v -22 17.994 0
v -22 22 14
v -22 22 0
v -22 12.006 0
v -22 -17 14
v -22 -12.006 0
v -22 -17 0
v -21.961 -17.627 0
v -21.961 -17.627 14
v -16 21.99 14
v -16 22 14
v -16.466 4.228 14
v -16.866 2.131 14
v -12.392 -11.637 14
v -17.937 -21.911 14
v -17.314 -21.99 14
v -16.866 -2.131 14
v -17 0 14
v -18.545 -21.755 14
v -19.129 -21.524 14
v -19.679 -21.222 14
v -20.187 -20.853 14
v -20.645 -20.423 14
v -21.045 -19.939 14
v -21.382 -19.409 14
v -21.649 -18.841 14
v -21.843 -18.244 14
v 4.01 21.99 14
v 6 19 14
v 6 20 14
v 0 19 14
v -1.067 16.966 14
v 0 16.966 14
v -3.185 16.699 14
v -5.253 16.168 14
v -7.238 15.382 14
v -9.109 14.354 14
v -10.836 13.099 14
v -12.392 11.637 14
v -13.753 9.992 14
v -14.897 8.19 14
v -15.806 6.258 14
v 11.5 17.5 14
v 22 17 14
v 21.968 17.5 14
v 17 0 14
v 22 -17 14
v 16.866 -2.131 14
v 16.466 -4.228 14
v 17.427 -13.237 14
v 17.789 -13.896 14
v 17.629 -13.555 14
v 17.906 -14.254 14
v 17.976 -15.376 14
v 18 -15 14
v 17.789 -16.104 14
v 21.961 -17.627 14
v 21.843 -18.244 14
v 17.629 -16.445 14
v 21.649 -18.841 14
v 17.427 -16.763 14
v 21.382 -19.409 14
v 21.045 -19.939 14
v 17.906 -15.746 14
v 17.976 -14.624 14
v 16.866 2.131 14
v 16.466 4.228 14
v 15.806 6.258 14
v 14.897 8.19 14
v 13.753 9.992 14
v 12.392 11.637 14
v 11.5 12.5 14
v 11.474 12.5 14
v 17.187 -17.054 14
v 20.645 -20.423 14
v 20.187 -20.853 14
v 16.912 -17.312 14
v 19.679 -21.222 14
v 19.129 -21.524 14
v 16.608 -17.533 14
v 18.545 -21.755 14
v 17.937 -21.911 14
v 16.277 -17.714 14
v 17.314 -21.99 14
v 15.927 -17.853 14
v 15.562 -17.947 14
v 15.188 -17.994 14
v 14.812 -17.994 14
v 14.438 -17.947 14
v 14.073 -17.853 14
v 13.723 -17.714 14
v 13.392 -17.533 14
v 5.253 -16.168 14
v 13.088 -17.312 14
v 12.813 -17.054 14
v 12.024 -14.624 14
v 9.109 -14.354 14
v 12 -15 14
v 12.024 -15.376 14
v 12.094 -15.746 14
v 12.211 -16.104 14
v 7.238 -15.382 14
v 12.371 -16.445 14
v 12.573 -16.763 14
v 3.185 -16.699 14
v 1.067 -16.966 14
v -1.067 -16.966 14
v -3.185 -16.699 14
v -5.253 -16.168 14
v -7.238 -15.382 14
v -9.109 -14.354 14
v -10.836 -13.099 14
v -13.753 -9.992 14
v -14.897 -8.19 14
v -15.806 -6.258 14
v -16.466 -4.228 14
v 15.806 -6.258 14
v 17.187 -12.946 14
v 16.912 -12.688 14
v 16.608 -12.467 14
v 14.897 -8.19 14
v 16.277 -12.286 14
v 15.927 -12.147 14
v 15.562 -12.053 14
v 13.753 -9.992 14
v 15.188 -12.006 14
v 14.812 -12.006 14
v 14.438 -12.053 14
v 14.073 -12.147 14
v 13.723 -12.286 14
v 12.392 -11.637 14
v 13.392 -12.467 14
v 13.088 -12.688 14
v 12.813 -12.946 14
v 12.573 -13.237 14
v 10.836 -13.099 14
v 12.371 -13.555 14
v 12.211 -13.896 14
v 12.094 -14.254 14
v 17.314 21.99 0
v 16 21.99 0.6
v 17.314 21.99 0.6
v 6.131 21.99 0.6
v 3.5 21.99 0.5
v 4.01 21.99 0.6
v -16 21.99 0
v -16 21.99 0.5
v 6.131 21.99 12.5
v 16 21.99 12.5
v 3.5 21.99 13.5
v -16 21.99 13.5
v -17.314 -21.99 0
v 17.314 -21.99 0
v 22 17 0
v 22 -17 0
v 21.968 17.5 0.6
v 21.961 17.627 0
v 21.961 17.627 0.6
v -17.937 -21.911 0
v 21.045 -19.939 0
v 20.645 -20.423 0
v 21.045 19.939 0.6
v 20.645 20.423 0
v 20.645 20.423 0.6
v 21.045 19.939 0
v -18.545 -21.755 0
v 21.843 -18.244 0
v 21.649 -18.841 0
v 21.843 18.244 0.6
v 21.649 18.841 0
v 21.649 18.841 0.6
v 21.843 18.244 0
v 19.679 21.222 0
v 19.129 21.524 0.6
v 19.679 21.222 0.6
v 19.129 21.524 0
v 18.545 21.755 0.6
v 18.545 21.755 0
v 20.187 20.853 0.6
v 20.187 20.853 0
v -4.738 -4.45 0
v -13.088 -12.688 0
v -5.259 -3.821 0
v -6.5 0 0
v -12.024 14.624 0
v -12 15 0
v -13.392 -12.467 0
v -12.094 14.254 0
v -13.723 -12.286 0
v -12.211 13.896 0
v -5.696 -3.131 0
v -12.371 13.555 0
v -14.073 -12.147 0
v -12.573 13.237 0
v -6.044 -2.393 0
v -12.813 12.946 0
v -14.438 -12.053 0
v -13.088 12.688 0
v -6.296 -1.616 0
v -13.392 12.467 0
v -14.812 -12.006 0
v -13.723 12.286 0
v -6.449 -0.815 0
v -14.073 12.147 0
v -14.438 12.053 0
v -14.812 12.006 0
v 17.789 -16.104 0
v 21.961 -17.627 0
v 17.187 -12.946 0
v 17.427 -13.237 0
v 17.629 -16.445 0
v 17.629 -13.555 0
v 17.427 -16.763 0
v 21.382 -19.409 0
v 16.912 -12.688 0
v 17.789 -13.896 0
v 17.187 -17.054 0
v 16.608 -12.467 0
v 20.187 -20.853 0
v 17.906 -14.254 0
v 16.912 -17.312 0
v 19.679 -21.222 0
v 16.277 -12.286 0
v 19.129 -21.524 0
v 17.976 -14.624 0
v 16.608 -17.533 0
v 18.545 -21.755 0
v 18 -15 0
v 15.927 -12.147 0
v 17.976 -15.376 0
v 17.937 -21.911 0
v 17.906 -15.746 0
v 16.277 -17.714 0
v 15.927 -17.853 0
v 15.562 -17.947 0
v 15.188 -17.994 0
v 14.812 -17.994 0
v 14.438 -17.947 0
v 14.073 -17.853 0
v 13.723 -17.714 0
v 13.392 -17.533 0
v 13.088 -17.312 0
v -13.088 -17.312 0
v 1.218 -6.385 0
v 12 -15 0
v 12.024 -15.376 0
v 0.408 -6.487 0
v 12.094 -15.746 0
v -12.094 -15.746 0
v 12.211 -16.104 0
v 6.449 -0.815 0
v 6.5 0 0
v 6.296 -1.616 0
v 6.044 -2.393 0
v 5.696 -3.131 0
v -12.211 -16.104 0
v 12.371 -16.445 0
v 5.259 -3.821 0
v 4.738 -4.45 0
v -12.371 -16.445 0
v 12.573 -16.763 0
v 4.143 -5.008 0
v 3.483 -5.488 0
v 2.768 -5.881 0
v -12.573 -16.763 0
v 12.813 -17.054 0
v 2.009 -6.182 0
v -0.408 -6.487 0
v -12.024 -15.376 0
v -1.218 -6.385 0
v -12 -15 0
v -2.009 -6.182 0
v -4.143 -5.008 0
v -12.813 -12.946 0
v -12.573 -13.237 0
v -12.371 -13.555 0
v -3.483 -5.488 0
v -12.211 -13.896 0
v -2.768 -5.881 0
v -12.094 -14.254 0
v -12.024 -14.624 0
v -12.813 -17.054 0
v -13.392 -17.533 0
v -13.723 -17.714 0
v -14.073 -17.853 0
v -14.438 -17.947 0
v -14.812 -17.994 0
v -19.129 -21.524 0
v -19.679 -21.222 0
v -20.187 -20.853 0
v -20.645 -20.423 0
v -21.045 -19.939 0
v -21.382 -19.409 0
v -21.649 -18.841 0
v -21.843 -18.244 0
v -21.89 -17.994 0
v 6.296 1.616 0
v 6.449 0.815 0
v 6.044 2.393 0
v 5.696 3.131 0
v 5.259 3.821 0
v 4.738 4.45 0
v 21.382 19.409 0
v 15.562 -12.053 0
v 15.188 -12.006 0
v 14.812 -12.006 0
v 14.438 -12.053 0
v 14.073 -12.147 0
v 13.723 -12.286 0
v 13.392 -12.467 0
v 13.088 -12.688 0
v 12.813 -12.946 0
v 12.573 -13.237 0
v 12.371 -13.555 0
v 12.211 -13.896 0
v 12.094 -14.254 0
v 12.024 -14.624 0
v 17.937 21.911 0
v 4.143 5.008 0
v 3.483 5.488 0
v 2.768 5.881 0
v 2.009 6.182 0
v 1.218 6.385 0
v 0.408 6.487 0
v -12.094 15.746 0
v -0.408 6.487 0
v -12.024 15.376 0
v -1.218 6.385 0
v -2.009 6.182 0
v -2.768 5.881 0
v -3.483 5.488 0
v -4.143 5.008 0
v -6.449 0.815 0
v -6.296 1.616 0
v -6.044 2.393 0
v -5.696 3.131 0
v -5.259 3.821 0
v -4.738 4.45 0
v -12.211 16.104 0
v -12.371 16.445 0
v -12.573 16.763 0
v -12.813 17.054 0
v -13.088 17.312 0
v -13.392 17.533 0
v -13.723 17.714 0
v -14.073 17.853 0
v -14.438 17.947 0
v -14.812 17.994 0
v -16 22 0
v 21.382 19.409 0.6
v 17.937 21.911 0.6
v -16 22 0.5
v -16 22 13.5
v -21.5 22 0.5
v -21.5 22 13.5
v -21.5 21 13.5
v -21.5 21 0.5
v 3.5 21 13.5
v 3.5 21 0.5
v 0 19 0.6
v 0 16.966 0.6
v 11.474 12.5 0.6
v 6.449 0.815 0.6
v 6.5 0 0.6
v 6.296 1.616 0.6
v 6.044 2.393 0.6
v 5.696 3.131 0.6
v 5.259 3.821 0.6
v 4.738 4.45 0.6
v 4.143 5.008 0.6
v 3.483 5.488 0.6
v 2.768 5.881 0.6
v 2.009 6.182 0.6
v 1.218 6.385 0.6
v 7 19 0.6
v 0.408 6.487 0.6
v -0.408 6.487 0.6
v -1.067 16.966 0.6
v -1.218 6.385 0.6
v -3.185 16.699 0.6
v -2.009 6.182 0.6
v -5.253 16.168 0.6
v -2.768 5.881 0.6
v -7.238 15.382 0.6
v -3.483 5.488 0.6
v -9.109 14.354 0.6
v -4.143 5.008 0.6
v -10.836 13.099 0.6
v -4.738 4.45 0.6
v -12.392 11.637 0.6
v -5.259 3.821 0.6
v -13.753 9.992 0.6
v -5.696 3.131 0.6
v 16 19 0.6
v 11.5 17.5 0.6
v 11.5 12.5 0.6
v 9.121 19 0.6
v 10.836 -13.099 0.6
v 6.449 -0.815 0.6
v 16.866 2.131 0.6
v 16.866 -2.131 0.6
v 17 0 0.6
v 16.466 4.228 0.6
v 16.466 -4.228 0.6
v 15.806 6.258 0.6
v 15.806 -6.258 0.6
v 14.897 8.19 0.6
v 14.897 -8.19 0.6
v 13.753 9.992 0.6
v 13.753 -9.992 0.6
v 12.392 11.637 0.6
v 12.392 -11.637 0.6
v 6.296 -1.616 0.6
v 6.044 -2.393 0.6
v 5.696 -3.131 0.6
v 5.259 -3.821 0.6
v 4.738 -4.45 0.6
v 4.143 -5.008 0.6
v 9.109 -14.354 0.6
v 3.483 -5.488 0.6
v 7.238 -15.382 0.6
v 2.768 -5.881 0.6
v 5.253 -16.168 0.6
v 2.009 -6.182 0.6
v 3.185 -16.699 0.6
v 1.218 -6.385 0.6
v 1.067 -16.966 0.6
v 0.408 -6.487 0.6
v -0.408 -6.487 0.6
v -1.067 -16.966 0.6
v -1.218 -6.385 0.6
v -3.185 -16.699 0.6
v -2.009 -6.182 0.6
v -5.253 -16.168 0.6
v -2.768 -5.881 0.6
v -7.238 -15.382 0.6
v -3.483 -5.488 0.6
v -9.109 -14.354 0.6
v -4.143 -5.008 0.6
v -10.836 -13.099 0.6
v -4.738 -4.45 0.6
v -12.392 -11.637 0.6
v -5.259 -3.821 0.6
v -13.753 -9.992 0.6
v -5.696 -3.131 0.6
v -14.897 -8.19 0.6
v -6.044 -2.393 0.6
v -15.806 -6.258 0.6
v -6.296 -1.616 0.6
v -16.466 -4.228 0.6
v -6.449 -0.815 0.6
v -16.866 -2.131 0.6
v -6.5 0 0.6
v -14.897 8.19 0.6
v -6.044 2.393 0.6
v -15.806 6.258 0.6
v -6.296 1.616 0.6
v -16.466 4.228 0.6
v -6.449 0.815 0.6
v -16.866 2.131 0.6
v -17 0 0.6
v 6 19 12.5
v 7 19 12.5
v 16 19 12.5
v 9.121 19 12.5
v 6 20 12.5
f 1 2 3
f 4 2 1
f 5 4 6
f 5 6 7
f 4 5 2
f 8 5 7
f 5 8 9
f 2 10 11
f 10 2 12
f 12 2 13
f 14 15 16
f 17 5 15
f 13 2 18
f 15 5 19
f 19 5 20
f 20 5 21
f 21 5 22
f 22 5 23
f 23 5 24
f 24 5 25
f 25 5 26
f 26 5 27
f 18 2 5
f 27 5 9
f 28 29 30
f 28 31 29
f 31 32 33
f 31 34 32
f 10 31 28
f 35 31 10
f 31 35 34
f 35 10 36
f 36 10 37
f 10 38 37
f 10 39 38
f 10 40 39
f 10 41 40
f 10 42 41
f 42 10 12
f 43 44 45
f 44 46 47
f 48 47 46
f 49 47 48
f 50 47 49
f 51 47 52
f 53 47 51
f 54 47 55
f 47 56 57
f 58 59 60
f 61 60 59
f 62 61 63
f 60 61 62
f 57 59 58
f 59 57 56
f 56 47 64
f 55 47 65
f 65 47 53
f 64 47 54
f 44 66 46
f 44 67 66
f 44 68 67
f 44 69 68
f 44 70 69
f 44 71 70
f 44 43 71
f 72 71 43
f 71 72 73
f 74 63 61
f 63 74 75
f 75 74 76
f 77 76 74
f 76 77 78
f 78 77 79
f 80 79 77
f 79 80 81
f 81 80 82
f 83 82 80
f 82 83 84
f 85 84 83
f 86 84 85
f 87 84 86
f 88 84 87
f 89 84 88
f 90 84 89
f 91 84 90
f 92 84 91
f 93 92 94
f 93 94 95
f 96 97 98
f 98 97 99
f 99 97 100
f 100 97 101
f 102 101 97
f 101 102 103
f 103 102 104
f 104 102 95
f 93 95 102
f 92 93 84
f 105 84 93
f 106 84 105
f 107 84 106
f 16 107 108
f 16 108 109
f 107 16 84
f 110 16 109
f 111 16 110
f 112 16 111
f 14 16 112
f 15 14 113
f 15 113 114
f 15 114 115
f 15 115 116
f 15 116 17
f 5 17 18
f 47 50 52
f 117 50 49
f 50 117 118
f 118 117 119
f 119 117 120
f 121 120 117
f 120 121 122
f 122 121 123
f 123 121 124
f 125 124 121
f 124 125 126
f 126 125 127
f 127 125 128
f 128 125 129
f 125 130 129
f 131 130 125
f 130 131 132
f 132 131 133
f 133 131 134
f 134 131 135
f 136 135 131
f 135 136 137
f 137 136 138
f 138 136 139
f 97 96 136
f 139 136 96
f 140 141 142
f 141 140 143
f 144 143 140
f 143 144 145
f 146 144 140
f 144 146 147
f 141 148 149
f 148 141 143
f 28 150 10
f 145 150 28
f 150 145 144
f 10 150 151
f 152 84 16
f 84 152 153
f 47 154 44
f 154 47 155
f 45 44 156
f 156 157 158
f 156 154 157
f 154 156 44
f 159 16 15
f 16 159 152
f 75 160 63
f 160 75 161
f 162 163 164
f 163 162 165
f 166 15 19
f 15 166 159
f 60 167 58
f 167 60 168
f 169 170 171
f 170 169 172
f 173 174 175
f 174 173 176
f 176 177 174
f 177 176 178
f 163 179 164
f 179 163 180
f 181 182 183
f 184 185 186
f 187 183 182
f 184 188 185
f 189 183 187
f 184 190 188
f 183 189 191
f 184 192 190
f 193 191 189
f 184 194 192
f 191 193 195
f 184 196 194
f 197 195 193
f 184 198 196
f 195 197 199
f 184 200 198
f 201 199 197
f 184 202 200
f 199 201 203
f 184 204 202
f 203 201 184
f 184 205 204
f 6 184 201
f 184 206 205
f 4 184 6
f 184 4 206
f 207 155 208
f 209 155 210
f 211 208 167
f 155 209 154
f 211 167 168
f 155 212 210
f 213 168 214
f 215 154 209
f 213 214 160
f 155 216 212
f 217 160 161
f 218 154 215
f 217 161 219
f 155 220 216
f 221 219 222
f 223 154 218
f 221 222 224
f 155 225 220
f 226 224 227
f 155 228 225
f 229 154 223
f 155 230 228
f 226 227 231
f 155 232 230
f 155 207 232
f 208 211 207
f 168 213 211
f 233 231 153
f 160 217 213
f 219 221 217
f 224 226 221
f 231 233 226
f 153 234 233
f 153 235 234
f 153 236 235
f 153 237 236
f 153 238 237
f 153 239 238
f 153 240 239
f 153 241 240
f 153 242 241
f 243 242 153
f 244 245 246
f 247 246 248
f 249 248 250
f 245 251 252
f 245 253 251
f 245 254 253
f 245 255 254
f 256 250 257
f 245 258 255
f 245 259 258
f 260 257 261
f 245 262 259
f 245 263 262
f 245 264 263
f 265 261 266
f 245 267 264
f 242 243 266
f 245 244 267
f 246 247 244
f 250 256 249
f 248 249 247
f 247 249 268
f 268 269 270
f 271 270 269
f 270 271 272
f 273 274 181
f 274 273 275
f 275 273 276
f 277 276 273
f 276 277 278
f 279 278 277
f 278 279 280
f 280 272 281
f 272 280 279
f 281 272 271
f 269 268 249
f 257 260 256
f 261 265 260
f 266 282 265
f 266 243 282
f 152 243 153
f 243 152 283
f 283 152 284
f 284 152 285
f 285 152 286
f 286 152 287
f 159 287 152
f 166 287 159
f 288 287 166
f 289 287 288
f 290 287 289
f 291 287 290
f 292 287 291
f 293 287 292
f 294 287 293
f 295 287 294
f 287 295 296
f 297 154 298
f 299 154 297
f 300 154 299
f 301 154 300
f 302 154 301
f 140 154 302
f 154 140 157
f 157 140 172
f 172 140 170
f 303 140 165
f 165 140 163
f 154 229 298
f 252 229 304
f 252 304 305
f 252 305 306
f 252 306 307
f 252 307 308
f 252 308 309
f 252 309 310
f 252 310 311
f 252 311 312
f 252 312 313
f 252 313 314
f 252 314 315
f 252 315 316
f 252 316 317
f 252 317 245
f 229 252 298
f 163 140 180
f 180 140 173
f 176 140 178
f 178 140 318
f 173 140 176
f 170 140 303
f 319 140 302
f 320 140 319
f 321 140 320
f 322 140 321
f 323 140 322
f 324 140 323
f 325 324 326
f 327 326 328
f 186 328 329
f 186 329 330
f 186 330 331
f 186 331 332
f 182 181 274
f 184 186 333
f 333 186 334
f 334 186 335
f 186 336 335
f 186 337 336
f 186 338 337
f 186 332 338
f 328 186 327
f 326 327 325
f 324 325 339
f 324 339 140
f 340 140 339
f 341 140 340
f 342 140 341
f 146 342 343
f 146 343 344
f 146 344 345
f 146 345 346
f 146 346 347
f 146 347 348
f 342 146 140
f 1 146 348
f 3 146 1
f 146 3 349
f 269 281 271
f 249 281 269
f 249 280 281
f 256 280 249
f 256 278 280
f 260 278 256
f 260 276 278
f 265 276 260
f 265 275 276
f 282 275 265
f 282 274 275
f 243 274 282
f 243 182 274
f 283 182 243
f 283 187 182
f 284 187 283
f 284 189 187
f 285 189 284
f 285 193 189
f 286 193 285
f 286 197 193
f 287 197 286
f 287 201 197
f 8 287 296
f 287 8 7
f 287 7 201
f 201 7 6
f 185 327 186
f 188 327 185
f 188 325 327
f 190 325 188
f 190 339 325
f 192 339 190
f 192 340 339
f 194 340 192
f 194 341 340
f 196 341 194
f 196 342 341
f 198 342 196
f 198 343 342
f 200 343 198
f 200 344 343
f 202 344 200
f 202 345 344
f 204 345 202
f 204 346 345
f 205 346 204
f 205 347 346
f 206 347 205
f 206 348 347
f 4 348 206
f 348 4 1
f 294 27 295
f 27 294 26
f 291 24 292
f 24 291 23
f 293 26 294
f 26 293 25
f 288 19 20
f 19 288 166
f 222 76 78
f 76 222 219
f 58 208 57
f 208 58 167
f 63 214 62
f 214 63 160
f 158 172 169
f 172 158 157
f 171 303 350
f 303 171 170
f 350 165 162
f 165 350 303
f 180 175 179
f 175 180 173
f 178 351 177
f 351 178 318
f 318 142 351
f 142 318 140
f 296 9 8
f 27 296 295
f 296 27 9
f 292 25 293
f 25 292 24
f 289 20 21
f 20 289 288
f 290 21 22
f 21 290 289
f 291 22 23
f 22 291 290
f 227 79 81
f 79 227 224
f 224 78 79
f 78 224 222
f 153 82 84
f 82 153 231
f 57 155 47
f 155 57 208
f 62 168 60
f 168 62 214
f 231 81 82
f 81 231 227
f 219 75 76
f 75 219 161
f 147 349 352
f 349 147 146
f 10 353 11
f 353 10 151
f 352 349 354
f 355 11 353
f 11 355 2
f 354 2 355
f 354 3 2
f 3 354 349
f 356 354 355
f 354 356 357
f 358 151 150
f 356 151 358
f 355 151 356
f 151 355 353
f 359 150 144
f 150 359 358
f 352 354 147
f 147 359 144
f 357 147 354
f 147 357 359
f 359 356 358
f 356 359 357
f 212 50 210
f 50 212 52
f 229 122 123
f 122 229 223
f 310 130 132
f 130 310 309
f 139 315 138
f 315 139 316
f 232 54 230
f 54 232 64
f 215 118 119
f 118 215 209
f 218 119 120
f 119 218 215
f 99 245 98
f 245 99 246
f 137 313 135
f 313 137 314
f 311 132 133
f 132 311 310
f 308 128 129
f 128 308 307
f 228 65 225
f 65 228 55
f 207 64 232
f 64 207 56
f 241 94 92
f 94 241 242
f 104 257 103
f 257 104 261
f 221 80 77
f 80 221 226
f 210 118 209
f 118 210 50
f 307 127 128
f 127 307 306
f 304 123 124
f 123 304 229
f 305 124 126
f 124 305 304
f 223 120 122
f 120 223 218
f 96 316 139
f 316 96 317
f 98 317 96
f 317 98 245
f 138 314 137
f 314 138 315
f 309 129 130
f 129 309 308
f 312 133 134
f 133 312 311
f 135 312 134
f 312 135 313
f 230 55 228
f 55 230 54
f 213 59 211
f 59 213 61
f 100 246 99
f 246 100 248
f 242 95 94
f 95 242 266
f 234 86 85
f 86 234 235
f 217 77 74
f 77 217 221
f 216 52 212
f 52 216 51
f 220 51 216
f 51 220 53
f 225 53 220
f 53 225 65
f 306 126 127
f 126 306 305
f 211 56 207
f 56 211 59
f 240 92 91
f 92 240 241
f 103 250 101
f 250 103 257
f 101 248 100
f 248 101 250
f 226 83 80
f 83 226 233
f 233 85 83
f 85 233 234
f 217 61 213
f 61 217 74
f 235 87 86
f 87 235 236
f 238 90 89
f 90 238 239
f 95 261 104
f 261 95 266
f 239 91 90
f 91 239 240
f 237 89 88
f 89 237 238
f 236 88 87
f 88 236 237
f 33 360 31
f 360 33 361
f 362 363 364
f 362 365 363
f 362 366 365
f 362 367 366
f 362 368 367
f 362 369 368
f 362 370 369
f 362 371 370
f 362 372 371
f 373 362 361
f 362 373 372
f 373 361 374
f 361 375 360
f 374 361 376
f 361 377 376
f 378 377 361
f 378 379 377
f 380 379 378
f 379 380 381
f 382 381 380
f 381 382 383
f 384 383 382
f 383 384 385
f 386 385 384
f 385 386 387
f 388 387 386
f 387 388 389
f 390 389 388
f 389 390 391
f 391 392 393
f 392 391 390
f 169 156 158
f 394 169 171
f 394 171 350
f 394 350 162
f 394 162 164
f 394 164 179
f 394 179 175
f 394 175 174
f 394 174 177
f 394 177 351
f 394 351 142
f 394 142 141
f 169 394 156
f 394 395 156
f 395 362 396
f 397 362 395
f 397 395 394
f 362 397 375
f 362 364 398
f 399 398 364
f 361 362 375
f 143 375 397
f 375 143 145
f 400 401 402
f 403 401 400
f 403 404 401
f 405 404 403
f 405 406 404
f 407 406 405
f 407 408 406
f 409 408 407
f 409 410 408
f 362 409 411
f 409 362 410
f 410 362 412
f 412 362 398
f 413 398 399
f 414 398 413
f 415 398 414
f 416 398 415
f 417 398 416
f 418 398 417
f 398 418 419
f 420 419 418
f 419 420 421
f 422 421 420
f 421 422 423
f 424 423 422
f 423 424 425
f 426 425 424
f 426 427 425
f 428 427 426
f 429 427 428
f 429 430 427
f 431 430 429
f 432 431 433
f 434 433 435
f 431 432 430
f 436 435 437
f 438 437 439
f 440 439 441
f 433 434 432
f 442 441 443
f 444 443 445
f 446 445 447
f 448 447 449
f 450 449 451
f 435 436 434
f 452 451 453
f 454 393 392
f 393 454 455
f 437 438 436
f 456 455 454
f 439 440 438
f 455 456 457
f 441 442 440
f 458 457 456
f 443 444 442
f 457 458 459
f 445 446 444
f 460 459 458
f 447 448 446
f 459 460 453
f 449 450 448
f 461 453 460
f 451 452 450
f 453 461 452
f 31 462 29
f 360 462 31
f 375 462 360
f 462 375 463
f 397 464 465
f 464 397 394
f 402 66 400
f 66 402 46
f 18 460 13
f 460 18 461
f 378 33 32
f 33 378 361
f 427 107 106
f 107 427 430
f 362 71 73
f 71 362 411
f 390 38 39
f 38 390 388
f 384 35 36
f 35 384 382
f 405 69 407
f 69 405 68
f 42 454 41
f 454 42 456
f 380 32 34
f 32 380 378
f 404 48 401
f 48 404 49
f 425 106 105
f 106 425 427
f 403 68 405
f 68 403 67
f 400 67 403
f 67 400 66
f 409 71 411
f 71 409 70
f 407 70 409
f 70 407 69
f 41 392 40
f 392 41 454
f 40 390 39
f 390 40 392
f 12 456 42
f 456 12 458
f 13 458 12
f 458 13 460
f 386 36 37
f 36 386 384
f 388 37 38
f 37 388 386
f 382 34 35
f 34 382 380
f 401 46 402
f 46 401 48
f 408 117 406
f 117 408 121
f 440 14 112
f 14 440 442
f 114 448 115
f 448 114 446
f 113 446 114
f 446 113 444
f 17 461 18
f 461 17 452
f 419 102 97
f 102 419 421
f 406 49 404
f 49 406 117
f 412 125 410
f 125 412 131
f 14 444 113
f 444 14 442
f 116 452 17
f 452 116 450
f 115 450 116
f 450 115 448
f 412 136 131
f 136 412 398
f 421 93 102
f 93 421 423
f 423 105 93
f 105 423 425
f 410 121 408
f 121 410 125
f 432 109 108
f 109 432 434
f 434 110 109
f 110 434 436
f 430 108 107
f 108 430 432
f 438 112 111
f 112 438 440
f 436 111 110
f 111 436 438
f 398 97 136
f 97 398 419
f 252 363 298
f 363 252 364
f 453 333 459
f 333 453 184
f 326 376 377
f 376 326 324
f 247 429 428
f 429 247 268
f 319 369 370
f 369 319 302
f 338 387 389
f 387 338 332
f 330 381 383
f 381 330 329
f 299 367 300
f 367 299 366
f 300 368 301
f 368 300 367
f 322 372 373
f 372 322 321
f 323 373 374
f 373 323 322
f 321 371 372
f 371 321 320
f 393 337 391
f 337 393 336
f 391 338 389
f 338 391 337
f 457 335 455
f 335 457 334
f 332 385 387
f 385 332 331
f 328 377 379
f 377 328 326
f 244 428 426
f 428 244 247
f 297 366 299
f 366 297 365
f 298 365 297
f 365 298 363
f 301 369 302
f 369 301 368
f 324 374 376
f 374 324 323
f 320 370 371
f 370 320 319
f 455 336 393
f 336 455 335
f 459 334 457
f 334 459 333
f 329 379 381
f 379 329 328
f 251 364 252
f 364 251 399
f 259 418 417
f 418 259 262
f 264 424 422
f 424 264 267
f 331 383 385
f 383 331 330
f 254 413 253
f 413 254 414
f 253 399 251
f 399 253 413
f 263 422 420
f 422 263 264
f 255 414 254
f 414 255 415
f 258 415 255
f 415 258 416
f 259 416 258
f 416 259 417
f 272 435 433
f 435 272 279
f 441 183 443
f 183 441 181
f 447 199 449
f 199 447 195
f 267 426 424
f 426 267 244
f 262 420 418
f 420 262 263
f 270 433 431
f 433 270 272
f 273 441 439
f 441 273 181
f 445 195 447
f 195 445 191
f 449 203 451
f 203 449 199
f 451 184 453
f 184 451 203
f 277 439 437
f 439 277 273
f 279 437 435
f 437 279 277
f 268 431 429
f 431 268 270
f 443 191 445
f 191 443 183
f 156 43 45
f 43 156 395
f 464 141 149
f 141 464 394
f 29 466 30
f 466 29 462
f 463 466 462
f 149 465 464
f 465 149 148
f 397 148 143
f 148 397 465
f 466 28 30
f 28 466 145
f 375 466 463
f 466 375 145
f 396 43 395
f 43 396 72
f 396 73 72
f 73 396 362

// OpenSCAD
$fn = 50;


difference() {
	union() {
		hull() {
			translate(v = [-17.0000000000, 17.0000000000, 0]) {
				cylinder(h = 14, r = 5);
			}
			translate(v = [17.0000000000, 17.0000000000, 0]) {
				cylinder(h = 14, r = 5);
			}
			translate(v = [-17.0000000000, -17.0000000000, 0]) {
				cylinder(h = 14, r = 5);
			}
			translate(v = [17.0000000000, -17.0000000000, 0]) {
				cylinder(h = 14, r = 5);
			}
		}
		translate(v = [-22.0000000000, 16.0000000000, 0]) {
			cube(size = [6, 6, 14]);
		}
	}
	union() {
		translate(v = [-22.5000000000, -15.0000000000, -250.0000000000]) {
			rotate(a = [0, 0, 0]) {
				difference() {
					union() {
						hull() {
							translate(v = [7.5000000000, 0, 0]) {
								cylinder(h = 250, r = 3.0000000000, r1 = 3.0000000000, r2 = 3.0000000000);
							}
							translate(v = [-7.5000000000, 0, 0]) {
								cylinder(h = 250, r = 3.0000000000, r1 = 3.0000000000, r2 = 3.0000000000);
							}
						}
					}
					union();
				}
			}
		}
		translate(v = [-22.5000000000, 15.0000000000, -250.0000000000]) {
			rotate(a = [0, 0, 0]) {
				difference() {
					union() {
						hull() {
							translate(v = [7.5000000000, 0, 0]) {
								cylinder(h = 250, r = 3.0000000000, r1 = 3.0000000000, r2 = 3.0000000000);
							}
							translate(v = [-7.5000000000, 0, 0]) {
								cylinder(h = 250, r = 3.0000000000, r1 = 3.0000000000, r2 = 3.0000000000);
							}
						}
					}
					union();
				}
			}
		}
		translate(v = [-21.5000000000, 21.0000000000, 0.5000000000]) {
			cube(size = [25, 1, 13.0000000000]);
		}
		translate(v = [15.0000000000, -15.0000000000, -50.0000000000]) {
			cylinder(h = 100, r = 3.0000000000);
		}
		translate(v = [0.0000000000, 11.0000000000, 0.6000000000]) {
			cube(size = [11, 8, 16.4000000000]);
		}
		translate(v = [0, 0, 0.6000000000]) {
			cylinder(h = 16.4000000000, r = 17.0000000000);
		}
		translate(v = [0, 0, -7.0000000000]) {
			cylinder(h = 14, r = 6.5000000000);
		}
		translate(v = [0.0000000000, 17.5000000000, 0.6000000000]) {
			cube(size = [22.0000000000, 1.5000000000, 16.4000000000]);
		}
		translate(v = [16.0000000000, 17.5000000000, 0.6000000000]) {
			cube(size = [6, 4.5000000000, 16.4000000000]);
		}
		translate(v = [6.0000000000, 17.5000000000, 12.5000000000]) {
			cube(size = [16, 4.5000000000, 1.5000000000]);
		}
		translate(v = [3.2500000000, 22.7500000000, 0.6000000000]) {
			rotate(a = [0, 0, -45]) {
				cube(size = [7.5000000000, 1.5000000000, 16.4000000000]);
			}
		}
		translate(v = [2.5000000000, 12.5000000000, 0.6000000000]) {
			cube(size = [9.0000000000, 5, 13.4000000000]);
		}
	}
}
